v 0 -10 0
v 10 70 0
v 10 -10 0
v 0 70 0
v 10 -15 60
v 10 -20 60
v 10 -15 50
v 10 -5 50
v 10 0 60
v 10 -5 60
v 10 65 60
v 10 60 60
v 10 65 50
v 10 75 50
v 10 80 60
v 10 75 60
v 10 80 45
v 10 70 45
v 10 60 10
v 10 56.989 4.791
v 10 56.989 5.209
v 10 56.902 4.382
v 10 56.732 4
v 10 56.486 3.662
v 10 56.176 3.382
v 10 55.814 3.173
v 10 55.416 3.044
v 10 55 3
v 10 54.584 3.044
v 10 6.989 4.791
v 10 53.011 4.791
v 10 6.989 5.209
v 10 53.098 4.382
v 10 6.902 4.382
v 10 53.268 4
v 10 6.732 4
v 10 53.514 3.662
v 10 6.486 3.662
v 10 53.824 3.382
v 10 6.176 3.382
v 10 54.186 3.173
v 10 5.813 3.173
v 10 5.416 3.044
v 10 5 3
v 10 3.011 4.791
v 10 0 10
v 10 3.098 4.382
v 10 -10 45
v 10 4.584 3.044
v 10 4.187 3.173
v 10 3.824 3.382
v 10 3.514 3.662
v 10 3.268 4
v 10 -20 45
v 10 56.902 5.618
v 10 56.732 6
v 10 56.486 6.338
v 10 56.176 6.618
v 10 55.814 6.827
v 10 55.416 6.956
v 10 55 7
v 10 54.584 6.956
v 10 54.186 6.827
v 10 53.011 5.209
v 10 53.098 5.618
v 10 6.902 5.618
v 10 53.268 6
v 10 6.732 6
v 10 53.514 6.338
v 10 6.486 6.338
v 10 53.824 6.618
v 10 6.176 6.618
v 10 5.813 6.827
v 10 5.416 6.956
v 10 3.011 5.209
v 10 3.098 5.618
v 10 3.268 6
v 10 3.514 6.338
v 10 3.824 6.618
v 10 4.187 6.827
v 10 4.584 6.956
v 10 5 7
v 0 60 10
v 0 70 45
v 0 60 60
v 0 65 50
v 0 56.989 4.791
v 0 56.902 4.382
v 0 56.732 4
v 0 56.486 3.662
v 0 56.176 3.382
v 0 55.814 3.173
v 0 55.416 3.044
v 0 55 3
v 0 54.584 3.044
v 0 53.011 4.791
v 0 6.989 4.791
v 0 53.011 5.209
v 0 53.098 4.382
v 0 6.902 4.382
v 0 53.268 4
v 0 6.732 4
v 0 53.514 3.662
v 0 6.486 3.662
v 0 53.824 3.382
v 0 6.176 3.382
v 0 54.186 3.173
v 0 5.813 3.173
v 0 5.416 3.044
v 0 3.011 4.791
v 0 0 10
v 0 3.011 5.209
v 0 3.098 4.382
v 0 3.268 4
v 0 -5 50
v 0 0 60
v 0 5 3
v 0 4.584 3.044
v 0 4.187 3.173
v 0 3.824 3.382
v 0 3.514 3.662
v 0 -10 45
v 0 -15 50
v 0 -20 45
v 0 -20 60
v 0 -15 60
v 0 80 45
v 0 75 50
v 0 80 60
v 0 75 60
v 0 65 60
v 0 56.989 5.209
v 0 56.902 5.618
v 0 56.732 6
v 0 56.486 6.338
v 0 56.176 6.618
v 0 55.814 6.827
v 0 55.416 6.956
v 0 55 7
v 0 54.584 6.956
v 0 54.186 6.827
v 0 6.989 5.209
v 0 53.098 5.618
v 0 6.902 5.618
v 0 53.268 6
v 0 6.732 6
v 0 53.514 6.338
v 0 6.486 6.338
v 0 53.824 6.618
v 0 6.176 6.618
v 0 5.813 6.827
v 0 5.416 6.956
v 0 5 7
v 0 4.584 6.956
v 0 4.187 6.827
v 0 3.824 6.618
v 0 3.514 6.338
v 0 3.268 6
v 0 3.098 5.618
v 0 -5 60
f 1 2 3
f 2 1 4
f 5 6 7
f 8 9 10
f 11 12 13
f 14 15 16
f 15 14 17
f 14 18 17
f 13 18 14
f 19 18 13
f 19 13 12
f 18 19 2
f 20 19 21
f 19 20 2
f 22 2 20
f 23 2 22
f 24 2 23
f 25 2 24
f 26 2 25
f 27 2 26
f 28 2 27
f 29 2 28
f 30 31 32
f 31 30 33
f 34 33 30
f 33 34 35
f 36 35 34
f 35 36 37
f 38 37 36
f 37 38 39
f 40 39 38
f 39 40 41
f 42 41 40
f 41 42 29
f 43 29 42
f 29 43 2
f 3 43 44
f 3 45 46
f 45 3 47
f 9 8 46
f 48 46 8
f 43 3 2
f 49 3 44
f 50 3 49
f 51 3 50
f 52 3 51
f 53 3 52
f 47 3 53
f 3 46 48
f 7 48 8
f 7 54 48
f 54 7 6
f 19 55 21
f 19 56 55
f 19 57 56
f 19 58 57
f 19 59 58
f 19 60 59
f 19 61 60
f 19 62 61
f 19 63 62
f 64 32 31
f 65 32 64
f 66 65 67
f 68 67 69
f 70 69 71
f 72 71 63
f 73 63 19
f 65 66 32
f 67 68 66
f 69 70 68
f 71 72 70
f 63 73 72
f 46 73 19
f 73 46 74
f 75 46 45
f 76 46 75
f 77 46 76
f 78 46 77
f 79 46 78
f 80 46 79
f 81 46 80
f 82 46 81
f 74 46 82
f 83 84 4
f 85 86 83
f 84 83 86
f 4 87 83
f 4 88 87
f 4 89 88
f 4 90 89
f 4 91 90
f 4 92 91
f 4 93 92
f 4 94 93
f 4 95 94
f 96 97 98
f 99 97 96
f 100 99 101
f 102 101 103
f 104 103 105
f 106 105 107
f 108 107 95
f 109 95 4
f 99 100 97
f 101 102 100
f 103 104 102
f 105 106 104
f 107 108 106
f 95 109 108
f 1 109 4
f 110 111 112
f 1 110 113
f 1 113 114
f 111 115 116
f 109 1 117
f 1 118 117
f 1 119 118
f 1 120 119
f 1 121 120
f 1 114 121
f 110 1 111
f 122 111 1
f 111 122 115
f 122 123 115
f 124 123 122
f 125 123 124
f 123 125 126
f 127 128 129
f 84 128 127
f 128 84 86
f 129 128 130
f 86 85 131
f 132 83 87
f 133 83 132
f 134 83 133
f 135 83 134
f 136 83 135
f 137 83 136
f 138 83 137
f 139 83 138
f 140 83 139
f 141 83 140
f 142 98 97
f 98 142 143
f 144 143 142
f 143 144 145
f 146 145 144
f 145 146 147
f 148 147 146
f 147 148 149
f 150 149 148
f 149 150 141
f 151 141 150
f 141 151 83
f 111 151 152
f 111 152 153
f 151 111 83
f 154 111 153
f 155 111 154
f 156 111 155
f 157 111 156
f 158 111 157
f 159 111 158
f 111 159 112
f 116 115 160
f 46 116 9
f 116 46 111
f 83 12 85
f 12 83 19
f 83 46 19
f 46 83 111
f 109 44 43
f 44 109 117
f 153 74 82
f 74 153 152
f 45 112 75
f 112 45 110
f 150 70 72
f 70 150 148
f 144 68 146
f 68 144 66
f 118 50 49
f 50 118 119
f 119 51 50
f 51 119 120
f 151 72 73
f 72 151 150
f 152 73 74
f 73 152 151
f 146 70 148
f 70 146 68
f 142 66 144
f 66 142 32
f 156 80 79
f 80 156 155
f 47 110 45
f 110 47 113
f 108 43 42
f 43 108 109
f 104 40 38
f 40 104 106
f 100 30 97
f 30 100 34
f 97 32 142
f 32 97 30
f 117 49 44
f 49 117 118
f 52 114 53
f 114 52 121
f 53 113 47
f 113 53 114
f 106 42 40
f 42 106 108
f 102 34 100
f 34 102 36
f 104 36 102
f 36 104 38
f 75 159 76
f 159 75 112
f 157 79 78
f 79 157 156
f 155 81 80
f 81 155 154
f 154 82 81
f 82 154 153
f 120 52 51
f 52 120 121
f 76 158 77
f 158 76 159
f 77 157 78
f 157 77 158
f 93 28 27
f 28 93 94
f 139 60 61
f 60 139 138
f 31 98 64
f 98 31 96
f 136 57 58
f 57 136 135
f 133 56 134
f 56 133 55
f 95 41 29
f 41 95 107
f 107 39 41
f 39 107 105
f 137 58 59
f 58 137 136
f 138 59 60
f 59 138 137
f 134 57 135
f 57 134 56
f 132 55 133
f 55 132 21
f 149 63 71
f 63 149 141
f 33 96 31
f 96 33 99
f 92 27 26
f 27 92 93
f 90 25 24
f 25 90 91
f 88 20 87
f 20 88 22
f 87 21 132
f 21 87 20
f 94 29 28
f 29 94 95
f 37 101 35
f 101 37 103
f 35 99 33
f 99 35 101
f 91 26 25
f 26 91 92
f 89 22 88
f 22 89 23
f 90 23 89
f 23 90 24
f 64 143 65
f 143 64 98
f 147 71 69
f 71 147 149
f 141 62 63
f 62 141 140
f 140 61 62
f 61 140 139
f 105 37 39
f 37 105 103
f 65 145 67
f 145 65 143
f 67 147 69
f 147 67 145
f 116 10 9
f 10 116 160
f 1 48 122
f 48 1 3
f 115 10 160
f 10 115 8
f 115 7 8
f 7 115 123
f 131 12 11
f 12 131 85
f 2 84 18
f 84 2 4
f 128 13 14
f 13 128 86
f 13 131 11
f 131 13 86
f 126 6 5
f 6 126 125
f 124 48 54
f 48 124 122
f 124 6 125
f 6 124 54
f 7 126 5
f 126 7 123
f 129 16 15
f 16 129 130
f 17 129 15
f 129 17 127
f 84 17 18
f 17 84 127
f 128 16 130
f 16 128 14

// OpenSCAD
$fs=0.1;
boxLength = 10;
boxWidth = 60;

makesHoles();
cutSquareBox(0,-10,0,0,0);
cutSquareBox(0,boxWidth,0,0,10);

sideBars(0,-20,boxWidth-15,0,0);
sideBars(0,boxWidth+10,boxWidth-15,0,-10);

module sideBars(xbox,ybox,zbox,cubeX,cubeY) {
    translate([xbox,ybox,zbox]) {
        difference() {
            cube([10,10,15]);
            translate([cubeX-1,cubeY+5,5]) { 
                #cube([12,10,12]);
            }
        }
    }
}


module cutSquareBox(xbox,ybox,zbox,cubeX,cubeY) {
    translate([xbox,ybox,zbox]) {
        difference() {
            cube([10,10,60]);
            translate([cubeX-1,cubeY-5,50]) { 
                #cube([12,10,12]);
            }
        }
    }
}

module makesHoles() {
    union() {
        difference() {
            squareBox(boxLength,boxWidth);
            tube(5,5);
            tube(5,boxWidth-5);
        }
    }
}

module squareBox(length,width) {
    linear_extrude(height=10,convexity=8){
        square([length,width]);
    }
}

module tube(height,location) {
    translate([-1,location,height]) {
        rotate([0,90,0]) {
            cylinder(d=4,h=20); 
        }
    }
}
